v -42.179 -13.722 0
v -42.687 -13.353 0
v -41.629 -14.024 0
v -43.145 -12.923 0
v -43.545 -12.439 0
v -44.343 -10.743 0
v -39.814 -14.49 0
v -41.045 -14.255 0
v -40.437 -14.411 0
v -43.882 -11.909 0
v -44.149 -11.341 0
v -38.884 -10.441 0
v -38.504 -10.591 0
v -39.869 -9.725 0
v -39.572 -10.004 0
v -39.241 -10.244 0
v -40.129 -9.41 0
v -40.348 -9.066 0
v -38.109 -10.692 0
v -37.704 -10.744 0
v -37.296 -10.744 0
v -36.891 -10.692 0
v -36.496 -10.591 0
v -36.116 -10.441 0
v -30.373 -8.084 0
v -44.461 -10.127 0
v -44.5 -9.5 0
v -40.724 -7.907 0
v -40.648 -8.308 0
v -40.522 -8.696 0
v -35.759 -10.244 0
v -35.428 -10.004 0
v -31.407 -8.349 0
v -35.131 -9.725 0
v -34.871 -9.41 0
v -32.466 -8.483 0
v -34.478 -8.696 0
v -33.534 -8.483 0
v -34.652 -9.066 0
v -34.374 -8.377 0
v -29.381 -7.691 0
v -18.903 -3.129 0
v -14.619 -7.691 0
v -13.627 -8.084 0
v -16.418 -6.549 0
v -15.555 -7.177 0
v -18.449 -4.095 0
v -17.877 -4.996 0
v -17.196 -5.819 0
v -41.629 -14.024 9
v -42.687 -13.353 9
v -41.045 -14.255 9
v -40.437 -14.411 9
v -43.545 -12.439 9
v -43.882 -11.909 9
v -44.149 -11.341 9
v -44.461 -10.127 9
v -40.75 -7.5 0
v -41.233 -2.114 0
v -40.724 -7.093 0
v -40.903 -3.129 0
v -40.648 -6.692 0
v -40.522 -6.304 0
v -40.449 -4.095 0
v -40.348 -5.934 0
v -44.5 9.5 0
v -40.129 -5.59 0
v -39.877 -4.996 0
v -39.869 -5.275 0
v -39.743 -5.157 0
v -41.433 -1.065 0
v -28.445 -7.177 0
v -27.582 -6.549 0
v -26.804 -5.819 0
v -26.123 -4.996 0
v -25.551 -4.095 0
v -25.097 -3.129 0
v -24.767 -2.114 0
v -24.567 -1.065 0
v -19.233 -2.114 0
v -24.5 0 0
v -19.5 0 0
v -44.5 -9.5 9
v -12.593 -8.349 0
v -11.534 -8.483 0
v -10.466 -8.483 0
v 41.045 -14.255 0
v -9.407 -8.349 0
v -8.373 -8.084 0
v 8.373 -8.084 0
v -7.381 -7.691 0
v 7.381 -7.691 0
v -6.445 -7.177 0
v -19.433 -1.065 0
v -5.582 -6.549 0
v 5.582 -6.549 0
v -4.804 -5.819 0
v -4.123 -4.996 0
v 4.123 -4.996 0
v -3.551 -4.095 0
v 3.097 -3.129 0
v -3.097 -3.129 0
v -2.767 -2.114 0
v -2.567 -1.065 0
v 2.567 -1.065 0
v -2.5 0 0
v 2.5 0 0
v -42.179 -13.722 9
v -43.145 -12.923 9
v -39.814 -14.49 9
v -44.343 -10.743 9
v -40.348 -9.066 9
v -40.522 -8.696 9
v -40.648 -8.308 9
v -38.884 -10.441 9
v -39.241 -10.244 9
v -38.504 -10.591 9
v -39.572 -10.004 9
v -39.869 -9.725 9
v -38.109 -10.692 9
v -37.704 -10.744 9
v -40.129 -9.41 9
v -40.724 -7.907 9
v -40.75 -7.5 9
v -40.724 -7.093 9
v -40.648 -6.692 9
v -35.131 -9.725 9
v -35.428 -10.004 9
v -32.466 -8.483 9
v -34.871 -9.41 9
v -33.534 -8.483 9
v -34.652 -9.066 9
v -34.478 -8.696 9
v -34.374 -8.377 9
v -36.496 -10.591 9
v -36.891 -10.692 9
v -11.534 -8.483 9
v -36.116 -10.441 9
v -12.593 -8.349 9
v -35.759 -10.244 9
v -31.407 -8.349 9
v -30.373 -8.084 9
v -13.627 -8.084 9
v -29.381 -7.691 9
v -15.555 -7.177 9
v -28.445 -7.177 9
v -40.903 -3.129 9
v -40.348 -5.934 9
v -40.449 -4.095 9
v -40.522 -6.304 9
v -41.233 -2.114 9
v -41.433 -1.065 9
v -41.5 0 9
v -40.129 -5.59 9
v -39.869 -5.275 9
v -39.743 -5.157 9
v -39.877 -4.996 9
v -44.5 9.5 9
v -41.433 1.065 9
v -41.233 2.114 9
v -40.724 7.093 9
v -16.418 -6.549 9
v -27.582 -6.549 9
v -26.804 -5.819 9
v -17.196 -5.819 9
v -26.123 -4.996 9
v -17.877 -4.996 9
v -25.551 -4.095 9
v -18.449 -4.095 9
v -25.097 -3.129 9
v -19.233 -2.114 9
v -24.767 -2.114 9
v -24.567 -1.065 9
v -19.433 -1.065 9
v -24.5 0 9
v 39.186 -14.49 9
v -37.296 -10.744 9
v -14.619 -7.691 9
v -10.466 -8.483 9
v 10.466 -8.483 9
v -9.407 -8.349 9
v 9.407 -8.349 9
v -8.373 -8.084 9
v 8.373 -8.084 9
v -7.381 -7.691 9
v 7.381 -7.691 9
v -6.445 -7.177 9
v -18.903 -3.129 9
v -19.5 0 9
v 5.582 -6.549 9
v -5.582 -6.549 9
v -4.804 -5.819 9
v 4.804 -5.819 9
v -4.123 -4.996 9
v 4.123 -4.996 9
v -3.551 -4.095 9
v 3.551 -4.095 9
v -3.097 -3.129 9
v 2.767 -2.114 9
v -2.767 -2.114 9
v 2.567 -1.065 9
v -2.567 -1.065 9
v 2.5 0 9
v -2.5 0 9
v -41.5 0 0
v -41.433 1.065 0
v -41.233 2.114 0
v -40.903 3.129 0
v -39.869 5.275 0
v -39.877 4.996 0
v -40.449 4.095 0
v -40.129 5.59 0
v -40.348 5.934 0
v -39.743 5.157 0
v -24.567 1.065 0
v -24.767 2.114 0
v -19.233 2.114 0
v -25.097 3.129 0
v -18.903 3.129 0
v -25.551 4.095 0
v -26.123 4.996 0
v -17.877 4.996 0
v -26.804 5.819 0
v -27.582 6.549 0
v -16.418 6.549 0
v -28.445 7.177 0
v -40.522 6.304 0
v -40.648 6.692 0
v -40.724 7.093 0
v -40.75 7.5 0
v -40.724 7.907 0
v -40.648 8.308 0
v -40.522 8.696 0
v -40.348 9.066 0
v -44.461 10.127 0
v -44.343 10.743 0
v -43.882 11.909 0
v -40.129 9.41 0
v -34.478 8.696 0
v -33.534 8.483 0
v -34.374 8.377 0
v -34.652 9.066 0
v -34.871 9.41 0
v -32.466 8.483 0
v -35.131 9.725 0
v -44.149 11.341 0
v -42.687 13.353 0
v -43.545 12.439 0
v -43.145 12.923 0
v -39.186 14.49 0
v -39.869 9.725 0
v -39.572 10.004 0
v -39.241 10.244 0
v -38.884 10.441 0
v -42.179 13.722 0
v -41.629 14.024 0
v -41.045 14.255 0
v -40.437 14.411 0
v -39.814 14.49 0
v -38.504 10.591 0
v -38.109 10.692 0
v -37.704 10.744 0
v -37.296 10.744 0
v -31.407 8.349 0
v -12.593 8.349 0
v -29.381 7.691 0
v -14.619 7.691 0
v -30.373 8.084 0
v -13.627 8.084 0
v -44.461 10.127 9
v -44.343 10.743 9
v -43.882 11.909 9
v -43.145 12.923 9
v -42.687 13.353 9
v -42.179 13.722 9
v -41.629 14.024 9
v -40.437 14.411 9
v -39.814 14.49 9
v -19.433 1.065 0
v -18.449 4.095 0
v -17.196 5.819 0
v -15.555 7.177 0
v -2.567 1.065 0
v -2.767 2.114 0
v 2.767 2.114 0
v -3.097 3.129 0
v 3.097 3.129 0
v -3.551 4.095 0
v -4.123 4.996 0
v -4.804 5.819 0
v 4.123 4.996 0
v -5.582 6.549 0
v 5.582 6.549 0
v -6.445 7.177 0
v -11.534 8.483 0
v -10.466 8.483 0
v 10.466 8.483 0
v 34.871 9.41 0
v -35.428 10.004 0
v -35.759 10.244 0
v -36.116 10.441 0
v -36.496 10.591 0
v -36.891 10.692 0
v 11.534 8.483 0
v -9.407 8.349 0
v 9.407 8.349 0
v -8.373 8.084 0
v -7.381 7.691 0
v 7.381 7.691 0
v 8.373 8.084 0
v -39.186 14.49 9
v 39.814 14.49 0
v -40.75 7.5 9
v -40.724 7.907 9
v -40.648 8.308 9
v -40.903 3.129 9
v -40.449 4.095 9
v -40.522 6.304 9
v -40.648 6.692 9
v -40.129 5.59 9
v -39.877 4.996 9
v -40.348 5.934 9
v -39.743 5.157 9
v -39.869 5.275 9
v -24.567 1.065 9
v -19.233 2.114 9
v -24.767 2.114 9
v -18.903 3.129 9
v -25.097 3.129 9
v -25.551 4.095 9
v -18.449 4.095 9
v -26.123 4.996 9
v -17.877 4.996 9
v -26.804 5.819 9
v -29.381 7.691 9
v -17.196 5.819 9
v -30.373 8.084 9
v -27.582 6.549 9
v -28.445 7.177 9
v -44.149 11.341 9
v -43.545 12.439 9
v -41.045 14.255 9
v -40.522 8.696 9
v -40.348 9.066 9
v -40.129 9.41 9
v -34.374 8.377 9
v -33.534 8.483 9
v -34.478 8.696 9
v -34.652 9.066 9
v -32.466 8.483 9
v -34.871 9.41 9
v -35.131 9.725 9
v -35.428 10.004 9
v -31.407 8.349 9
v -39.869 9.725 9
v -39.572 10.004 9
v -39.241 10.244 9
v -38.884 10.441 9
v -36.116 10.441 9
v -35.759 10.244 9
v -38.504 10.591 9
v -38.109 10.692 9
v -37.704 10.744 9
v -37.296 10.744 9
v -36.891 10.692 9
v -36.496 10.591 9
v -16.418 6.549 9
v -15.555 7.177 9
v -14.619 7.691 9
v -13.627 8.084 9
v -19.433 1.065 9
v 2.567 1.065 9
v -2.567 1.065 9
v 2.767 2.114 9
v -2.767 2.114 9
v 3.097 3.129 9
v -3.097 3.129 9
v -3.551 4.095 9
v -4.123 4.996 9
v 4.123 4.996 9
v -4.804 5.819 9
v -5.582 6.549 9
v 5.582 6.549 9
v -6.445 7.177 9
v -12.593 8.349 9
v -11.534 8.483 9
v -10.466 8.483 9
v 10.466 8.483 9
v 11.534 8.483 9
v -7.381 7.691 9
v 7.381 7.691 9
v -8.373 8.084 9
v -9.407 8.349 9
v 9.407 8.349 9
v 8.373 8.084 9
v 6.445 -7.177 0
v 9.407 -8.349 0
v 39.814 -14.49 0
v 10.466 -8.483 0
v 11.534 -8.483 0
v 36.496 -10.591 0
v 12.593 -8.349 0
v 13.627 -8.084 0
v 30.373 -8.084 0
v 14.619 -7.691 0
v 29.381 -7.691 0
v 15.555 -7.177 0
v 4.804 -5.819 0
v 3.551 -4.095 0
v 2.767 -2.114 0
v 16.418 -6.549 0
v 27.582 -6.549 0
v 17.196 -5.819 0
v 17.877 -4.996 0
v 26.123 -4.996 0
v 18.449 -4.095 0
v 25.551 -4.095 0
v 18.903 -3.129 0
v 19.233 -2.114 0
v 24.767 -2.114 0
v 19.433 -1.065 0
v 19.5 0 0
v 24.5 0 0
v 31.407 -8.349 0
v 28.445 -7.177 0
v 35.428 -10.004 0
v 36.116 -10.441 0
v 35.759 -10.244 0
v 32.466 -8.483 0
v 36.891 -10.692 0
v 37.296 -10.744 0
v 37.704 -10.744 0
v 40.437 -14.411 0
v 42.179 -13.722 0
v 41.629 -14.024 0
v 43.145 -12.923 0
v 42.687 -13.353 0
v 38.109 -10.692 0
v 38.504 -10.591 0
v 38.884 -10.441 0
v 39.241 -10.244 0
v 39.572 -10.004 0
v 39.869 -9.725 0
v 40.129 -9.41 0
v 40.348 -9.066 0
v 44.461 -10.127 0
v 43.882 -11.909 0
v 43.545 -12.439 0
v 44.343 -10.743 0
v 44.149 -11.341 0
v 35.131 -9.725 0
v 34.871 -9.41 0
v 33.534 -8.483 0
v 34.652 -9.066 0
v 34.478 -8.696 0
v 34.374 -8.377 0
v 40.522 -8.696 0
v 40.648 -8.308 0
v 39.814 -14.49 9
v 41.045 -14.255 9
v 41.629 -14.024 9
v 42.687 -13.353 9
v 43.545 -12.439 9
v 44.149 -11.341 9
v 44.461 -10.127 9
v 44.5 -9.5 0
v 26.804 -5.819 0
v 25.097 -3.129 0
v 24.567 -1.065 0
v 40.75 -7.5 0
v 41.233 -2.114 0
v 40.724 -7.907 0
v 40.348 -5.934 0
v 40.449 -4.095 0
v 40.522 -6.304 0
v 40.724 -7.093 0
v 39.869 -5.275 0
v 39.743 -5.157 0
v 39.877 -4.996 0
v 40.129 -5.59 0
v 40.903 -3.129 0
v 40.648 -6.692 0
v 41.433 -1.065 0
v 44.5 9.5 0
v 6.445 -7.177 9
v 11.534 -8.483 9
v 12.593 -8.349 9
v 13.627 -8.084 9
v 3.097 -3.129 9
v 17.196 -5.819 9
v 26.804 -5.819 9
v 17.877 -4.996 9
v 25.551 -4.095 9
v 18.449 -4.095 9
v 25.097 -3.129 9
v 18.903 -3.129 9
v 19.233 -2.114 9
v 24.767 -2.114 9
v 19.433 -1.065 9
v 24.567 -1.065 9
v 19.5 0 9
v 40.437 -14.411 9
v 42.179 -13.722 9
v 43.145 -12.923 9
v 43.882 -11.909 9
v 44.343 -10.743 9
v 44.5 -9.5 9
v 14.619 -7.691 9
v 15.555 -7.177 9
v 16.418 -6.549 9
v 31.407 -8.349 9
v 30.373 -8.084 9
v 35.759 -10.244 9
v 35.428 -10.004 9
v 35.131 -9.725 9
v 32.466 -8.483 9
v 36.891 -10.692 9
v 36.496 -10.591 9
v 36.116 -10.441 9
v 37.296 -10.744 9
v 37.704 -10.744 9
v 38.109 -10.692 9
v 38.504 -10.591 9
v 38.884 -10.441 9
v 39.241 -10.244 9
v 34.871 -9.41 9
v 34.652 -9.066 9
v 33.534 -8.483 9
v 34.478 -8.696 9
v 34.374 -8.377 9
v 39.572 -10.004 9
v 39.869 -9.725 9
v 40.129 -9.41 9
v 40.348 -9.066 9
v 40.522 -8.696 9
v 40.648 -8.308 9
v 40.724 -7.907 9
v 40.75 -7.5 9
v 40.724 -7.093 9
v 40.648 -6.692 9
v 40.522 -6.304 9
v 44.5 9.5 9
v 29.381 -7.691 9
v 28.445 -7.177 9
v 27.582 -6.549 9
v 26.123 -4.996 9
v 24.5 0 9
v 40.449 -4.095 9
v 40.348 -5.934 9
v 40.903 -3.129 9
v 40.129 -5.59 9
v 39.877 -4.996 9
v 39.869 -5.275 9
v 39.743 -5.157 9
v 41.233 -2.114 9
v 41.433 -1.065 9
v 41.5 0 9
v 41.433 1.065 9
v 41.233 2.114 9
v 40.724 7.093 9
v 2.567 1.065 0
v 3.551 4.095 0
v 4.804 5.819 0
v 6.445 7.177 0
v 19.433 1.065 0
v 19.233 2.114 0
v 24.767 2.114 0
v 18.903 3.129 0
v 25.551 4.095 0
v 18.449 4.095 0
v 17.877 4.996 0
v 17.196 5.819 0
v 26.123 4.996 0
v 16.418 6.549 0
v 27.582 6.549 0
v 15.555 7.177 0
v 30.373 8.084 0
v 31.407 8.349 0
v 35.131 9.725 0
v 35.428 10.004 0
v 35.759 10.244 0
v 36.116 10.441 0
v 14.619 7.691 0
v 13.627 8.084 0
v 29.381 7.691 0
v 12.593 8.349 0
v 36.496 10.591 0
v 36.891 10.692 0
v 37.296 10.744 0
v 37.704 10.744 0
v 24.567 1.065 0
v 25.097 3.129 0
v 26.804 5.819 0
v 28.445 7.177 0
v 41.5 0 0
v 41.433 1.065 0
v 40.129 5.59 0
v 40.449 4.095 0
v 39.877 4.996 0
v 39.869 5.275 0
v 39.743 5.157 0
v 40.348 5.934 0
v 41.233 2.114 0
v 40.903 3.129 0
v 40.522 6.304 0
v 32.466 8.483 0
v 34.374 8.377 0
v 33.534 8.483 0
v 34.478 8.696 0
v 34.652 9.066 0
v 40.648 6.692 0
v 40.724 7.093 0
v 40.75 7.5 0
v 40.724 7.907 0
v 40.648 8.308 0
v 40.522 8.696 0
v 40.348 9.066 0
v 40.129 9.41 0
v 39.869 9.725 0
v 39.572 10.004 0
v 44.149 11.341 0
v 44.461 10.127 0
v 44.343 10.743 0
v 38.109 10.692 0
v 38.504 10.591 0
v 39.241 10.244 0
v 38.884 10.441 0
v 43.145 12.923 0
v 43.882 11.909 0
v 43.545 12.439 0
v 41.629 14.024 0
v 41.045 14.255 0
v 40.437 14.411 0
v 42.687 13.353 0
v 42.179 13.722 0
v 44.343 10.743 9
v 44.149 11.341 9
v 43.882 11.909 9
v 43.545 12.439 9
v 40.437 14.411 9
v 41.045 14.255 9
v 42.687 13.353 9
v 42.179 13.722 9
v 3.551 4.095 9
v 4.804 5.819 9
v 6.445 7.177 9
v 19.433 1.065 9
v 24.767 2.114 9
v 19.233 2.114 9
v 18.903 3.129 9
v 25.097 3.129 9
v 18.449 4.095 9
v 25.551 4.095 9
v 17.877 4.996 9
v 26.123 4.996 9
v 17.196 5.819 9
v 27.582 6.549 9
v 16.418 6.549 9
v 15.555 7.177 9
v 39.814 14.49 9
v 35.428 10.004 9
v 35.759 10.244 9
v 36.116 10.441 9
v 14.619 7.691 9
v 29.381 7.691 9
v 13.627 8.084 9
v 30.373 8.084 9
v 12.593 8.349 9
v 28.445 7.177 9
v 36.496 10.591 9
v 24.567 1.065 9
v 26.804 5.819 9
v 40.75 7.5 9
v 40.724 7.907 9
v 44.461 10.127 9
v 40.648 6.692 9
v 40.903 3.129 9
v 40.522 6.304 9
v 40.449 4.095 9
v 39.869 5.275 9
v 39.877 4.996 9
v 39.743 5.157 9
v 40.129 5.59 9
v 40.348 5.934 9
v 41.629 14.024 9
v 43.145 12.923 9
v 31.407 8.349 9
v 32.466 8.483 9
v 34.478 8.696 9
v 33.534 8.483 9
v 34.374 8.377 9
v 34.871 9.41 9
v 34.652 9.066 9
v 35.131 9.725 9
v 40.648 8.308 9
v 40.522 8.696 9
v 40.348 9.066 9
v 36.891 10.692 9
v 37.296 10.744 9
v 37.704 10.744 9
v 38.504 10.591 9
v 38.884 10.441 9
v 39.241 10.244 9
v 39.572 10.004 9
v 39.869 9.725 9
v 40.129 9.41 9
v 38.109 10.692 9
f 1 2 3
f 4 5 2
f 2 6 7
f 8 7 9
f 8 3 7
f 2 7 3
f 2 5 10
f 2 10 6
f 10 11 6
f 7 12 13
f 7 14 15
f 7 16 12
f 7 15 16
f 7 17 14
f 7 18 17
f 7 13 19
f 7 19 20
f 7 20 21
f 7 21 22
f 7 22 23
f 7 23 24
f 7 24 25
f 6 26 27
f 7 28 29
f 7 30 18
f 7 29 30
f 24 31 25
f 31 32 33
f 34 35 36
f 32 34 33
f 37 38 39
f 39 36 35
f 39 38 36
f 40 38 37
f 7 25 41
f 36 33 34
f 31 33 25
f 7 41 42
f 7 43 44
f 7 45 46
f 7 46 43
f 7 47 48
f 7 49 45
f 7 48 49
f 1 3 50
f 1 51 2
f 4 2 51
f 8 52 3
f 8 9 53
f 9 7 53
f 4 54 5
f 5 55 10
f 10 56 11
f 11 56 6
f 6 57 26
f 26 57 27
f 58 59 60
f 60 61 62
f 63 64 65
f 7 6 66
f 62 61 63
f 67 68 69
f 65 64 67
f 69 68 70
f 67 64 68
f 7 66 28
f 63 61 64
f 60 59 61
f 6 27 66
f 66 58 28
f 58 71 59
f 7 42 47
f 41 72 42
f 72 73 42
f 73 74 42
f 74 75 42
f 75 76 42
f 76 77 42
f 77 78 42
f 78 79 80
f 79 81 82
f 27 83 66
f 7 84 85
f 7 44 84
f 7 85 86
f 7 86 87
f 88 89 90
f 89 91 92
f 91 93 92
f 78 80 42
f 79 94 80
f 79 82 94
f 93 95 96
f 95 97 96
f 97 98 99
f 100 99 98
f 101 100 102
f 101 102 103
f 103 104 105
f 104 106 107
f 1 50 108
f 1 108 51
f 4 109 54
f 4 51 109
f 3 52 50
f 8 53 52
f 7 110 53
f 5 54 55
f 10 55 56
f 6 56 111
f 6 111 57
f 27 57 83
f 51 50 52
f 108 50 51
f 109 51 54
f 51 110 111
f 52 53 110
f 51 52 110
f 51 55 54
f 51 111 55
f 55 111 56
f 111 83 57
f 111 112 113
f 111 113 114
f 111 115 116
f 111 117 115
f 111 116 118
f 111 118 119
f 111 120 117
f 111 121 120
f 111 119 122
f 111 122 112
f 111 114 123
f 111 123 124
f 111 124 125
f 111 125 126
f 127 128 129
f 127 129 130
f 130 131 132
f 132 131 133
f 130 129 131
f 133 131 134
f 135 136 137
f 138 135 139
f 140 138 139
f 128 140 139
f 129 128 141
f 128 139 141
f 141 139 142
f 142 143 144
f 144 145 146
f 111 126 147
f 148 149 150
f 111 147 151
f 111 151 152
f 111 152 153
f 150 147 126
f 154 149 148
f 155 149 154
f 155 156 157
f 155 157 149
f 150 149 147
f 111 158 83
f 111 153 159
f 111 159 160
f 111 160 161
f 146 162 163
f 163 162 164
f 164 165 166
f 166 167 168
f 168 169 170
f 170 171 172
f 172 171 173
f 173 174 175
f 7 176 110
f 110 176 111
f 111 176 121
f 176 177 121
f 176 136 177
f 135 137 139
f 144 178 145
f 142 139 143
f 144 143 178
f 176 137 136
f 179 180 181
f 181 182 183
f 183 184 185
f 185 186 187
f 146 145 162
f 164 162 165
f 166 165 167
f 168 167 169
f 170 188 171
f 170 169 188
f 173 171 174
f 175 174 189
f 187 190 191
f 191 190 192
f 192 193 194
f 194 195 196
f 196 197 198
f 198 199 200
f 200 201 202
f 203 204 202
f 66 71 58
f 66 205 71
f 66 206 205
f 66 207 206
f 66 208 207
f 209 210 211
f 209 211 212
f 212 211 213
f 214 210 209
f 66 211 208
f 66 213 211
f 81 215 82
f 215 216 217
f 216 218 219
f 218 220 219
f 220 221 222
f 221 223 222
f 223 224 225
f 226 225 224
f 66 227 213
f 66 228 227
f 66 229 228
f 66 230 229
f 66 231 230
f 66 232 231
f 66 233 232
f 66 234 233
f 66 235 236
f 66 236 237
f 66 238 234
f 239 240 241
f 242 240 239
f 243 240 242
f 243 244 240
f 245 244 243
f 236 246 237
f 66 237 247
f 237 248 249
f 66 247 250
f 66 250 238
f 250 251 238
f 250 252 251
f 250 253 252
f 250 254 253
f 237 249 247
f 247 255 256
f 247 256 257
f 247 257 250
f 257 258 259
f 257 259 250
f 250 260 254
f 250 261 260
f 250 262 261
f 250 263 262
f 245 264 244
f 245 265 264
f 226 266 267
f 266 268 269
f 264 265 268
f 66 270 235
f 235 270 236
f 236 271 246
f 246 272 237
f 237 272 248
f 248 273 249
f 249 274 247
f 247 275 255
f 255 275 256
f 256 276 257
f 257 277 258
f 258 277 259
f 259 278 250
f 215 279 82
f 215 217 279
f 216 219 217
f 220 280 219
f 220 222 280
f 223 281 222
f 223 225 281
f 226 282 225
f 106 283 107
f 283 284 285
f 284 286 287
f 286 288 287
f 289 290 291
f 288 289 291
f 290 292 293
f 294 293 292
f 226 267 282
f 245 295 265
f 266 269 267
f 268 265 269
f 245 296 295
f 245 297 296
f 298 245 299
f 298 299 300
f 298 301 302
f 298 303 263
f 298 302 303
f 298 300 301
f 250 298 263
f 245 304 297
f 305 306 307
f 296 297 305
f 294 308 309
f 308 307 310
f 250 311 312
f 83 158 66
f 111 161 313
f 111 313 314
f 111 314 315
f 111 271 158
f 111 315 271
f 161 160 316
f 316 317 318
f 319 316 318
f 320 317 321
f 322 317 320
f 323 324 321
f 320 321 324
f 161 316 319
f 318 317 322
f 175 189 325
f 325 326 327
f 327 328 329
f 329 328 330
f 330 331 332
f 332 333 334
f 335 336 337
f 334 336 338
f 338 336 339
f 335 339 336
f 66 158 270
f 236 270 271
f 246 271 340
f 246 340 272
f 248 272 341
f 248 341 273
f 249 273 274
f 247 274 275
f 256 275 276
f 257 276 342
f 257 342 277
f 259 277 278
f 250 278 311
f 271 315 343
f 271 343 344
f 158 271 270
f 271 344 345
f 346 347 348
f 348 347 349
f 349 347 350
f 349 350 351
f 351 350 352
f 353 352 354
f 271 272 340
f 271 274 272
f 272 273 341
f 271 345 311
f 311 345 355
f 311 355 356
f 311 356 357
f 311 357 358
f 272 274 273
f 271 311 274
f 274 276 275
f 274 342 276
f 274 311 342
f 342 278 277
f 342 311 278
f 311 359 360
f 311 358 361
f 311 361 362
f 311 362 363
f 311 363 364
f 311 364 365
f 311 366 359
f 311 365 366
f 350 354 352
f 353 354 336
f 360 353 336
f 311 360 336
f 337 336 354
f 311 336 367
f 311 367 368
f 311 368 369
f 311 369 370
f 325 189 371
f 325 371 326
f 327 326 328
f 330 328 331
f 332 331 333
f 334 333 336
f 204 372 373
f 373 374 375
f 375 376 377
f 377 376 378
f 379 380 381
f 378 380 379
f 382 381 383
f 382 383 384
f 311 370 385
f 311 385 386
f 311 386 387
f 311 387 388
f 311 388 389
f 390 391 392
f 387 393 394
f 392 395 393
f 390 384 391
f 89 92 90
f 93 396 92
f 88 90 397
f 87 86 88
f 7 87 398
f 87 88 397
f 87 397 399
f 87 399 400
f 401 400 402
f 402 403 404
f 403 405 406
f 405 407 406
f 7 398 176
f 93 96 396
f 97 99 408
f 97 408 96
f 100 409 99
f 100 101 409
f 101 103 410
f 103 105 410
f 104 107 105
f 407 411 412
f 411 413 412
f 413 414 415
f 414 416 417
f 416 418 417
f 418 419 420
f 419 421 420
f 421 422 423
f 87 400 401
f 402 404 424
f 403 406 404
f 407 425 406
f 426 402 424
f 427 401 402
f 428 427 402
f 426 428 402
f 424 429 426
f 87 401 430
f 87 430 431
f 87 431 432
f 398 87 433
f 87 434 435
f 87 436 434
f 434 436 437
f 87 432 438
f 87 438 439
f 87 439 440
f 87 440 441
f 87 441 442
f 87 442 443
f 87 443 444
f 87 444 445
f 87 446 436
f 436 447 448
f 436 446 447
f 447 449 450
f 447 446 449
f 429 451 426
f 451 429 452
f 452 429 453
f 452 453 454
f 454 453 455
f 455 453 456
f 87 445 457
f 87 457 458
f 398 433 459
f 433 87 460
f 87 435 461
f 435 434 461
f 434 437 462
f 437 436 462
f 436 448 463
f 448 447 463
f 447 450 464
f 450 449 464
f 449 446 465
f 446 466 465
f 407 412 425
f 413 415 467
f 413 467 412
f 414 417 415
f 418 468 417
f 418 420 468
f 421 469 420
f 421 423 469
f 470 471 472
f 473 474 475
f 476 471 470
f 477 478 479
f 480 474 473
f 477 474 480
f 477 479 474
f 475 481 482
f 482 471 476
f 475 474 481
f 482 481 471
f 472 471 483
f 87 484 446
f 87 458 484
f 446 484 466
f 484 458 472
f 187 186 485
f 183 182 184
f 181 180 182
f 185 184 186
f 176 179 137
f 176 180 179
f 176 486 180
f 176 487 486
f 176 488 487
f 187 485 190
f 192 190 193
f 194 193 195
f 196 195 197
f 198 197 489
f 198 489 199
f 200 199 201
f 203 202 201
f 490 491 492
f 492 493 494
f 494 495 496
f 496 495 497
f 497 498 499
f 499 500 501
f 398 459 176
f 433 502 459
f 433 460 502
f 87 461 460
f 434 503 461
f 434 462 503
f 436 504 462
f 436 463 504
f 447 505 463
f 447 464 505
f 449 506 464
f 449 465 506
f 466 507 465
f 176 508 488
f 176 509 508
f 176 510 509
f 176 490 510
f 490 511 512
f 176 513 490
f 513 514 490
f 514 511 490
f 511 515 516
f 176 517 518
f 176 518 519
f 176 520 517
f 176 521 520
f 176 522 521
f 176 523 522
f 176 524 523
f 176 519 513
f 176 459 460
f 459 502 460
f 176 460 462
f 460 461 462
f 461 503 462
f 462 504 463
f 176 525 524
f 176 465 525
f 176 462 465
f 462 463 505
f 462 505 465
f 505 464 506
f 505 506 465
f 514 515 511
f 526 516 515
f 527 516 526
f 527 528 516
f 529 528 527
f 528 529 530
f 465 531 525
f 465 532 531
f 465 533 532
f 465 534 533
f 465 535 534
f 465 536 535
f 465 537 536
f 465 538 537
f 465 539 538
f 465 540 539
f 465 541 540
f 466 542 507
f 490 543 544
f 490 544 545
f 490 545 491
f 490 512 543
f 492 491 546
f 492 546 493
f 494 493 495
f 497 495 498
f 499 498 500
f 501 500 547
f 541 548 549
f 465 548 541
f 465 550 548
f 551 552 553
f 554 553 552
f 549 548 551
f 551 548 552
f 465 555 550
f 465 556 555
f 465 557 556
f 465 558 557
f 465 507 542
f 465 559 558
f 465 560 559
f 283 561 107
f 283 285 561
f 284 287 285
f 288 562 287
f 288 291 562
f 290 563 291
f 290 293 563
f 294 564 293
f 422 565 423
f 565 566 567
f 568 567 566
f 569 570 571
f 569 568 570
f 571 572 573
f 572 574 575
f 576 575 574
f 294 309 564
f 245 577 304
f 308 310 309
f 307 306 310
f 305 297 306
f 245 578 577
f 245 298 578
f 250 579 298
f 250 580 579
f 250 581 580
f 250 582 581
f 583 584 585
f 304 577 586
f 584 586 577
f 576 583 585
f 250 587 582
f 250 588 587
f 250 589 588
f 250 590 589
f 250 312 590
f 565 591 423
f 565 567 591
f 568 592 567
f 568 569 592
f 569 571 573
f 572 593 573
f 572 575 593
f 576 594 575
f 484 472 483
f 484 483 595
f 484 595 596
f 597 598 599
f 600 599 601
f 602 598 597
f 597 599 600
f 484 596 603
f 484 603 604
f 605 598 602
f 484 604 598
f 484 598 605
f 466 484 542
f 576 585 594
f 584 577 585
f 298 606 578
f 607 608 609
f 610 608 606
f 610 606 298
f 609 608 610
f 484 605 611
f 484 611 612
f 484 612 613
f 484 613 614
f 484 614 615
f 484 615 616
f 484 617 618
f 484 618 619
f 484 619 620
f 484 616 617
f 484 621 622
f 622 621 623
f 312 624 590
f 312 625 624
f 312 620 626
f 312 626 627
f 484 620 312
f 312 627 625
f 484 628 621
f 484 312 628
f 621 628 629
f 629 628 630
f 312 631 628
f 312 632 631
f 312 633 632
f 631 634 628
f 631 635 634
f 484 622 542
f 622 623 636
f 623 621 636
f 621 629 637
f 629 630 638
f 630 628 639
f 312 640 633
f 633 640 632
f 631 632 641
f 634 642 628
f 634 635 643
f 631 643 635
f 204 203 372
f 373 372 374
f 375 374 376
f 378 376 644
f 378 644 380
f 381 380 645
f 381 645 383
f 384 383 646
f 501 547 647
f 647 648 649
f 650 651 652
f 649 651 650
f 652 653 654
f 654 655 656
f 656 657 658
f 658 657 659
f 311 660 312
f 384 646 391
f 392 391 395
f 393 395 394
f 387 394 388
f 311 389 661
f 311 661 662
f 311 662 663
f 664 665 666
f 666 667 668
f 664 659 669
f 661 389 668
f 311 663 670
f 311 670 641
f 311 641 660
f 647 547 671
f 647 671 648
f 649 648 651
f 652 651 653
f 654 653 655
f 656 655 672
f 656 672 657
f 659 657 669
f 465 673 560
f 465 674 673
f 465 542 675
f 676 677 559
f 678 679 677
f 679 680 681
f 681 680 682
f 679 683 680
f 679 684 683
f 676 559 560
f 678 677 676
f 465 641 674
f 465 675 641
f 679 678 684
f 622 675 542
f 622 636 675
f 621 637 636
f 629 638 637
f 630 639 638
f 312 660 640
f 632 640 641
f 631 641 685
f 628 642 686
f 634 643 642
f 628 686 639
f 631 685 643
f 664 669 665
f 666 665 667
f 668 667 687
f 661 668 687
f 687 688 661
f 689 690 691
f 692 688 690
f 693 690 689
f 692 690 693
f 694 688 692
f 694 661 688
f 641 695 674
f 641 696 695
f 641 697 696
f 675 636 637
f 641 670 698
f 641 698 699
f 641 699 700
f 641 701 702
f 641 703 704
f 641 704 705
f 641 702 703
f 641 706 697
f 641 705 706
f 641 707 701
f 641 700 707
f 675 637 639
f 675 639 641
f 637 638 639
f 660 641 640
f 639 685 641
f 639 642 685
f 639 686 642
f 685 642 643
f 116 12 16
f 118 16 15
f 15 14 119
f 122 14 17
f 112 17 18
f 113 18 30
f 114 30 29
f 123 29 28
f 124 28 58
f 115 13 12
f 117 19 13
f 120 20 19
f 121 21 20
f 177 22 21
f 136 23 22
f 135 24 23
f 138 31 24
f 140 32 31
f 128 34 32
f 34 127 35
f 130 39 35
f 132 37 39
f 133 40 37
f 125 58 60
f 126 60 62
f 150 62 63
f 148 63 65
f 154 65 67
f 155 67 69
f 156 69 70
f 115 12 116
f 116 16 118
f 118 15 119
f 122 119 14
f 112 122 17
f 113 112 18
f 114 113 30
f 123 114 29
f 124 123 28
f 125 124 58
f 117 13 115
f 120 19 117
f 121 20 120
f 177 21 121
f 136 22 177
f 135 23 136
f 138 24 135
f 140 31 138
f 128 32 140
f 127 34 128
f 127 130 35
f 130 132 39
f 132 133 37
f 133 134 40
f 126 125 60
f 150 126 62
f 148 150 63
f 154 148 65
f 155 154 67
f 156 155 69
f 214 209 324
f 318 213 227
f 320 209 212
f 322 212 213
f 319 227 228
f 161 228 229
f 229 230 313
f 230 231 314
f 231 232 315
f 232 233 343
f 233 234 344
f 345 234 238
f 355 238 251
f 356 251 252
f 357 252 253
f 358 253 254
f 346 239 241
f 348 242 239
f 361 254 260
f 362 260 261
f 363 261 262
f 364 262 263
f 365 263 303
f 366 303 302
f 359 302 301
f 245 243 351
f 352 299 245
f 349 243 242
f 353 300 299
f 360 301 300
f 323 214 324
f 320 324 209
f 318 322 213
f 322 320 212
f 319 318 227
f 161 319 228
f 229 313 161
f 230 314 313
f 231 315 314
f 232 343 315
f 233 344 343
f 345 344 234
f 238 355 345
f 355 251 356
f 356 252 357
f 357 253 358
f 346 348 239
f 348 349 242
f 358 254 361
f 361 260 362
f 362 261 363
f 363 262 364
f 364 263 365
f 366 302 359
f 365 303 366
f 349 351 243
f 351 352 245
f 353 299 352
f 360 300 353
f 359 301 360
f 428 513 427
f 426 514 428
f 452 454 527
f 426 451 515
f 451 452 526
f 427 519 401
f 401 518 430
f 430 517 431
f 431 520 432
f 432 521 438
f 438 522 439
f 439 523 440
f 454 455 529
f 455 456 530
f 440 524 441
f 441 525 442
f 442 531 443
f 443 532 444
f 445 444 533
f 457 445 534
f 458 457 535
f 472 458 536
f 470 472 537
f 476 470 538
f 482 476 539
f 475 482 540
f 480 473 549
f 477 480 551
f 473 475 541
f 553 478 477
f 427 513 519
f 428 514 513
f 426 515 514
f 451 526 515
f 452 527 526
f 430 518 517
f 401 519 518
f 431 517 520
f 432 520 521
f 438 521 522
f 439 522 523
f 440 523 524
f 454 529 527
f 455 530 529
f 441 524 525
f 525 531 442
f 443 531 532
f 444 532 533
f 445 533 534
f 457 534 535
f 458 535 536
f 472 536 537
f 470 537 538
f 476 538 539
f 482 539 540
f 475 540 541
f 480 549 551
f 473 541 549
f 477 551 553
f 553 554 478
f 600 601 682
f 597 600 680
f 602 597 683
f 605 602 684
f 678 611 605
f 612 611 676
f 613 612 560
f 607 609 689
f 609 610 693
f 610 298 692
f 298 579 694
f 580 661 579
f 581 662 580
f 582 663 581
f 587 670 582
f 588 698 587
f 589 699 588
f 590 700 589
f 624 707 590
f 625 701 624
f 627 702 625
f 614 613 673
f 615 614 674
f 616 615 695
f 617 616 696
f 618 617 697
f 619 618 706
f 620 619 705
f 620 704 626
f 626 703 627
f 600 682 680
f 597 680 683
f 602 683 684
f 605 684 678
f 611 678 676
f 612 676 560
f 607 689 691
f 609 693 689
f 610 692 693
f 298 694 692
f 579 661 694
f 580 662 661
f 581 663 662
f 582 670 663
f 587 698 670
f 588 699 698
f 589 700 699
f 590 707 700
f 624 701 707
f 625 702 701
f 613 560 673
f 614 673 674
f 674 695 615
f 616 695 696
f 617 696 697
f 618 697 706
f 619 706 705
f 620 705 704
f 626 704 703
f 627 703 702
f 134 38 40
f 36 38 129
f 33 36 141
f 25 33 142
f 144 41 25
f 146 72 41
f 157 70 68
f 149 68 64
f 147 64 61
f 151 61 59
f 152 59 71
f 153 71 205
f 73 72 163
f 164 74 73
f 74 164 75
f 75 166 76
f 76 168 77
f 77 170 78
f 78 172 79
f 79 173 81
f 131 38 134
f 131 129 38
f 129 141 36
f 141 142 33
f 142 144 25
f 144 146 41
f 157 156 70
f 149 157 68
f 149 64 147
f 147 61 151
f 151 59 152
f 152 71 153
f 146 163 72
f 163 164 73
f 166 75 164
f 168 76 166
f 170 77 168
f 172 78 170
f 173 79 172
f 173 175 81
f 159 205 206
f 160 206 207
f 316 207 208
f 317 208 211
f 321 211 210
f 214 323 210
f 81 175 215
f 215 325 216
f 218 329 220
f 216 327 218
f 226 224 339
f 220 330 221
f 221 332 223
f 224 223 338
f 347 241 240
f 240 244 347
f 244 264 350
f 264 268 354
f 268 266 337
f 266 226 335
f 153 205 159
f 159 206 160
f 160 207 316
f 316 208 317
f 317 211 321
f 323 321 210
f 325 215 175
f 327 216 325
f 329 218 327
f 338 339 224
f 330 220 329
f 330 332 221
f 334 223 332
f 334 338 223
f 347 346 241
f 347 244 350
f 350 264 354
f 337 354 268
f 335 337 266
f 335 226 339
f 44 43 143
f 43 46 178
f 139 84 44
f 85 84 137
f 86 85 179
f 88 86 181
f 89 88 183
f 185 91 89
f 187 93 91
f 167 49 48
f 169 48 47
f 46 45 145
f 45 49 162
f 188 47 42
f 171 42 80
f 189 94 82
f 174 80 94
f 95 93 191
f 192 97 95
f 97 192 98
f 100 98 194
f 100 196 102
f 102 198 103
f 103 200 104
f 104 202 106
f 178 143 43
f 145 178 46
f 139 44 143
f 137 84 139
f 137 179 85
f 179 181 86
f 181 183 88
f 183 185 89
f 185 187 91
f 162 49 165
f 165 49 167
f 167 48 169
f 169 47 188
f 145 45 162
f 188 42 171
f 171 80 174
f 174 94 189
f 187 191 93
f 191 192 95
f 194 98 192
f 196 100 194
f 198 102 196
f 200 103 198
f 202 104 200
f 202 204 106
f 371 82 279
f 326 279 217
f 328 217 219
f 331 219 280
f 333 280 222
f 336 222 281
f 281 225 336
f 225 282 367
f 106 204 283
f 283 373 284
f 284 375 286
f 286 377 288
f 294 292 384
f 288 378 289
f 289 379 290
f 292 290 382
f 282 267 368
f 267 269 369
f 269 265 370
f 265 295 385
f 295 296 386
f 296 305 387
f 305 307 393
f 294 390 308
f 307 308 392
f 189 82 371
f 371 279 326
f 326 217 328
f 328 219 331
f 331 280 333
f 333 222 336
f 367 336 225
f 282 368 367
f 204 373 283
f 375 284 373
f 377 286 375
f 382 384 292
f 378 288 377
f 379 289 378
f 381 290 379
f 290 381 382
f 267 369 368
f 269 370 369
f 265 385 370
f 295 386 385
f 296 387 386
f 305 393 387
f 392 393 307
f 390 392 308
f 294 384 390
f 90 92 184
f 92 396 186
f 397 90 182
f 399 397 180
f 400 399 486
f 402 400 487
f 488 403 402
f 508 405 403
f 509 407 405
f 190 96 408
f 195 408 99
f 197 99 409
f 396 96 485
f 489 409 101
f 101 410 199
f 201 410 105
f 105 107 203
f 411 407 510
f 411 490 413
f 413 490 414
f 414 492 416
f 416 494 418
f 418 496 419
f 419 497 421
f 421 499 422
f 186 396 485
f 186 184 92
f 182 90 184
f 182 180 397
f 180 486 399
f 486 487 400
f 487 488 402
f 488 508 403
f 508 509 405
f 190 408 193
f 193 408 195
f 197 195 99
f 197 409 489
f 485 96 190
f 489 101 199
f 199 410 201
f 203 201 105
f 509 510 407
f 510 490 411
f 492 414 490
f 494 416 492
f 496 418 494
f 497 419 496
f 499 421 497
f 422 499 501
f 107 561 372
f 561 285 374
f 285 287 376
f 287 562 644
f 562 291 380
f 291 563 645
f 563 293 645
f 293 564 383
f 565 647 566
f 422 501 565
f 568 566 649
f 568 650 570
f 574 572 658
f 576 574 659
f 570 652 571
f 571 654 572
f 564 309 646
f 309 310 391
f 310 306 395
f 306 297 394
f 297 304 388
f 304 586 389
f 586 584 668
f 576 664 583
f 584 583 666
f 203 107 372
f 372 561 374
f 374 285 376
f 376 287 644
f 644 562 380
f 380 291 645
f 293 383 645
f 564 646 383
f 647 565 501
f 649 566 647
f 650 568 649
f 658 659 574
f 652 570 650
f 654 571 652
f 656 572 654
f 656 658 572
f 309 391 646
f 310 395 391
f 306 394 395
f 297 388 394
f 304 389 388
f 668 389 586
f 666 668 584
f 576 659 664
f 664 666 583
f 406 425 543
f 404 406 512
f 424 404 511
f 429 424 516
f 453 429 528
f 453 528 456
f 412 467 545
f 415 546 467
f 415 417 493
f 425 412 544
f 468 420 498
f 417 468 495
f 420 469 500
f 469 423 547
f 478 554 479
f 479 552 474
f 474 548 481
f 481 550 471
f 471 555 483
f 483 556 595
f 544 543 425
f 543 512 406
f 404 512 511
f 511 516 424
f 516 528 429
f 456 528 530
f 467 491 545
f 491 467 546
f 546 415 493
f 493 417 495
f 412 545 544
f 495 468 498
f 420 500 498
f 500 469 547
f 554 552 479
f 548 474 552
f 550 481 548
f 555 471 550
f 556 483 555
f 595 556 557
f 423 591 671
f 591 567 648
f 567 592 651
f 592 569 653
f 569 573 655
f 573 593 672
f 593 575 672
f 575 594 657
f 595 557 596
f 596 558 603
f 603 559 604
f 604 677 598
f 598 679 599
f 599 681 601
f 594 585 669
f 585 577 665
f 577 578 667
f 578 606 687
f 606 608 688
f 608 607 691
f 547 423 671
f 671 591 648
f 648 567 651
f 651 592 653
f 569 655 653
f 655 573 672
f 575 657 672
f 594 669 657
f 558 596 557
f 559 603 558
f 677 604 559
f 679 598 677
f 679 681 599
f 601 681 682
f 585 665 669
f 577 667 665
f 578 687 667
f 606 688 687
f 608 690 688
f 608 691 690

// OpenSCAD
$fn = 50;

difference() {
	union() {
		hull() {
			translate(v = [-39.5, 9.5, 0]) {
				cylinder(h = 9, r = 5);
			}
			translate(v = [39.5, 9.5, 0]) {
				cylinder(h = 9, r = 5);
			}
			translate(v = [-39.5, -9.5, 0]) {
				cylinder(h = 9, r = 5);
			}
			translate(v = [39.5, -9.5, 0]) {
				cylinder(h = 9, r = 5);
			}
		}
	}
	union() {
		translate(v = [-37.5, -7.5, -100.0]) {
			cylinder(h = 200, r = 3.25);
		}
		translate(v = [-37.5, 7.5, -100.0]) {
			cylinder(h = 200, r = 3.25);
		}
		translate(v = [37.5, -7.5, -100.0]) {
			cylinder(h = 200, r = 3.25);
		}
		translate(v = [37.5, 7.5, -100.0]) {
			cylinder(h = 200, r = 3.25);
		}
		translate(v = [-37.5, -7.5, -100.0]) {
			cylinder(h = 200, r = 1.8);
		}
		translate(v = [-37.5, 7.5, -100.0]) {
			cylinder(h = 200, r = 1.8);
		}
		translate(v = [37.5, -7.5, -100.0]) {
			cylinder(h = 200, r = 1.8);
		}
		translate(v = [37.5, 7.5, -100.0]) {
			cylinder(h = 200, r = 1.8);
		}
		translate(v = [-33.0, 0, 0.0]) {
			cylinder(h = 9, r = 8.5);
		}
		translate(v = [-11.0, 0, 0.0]) {
			cylinder(h = 9, r = 8.5);
		}
		translate(v = [11.0, 0, 0.0]) {
			cylinder(h = 9, r = 8.5);
		}
		translate(v = [33.0, 0, 0.0]) {
			cylinder(h = 9, r = 8.5);
		}
	}
}
